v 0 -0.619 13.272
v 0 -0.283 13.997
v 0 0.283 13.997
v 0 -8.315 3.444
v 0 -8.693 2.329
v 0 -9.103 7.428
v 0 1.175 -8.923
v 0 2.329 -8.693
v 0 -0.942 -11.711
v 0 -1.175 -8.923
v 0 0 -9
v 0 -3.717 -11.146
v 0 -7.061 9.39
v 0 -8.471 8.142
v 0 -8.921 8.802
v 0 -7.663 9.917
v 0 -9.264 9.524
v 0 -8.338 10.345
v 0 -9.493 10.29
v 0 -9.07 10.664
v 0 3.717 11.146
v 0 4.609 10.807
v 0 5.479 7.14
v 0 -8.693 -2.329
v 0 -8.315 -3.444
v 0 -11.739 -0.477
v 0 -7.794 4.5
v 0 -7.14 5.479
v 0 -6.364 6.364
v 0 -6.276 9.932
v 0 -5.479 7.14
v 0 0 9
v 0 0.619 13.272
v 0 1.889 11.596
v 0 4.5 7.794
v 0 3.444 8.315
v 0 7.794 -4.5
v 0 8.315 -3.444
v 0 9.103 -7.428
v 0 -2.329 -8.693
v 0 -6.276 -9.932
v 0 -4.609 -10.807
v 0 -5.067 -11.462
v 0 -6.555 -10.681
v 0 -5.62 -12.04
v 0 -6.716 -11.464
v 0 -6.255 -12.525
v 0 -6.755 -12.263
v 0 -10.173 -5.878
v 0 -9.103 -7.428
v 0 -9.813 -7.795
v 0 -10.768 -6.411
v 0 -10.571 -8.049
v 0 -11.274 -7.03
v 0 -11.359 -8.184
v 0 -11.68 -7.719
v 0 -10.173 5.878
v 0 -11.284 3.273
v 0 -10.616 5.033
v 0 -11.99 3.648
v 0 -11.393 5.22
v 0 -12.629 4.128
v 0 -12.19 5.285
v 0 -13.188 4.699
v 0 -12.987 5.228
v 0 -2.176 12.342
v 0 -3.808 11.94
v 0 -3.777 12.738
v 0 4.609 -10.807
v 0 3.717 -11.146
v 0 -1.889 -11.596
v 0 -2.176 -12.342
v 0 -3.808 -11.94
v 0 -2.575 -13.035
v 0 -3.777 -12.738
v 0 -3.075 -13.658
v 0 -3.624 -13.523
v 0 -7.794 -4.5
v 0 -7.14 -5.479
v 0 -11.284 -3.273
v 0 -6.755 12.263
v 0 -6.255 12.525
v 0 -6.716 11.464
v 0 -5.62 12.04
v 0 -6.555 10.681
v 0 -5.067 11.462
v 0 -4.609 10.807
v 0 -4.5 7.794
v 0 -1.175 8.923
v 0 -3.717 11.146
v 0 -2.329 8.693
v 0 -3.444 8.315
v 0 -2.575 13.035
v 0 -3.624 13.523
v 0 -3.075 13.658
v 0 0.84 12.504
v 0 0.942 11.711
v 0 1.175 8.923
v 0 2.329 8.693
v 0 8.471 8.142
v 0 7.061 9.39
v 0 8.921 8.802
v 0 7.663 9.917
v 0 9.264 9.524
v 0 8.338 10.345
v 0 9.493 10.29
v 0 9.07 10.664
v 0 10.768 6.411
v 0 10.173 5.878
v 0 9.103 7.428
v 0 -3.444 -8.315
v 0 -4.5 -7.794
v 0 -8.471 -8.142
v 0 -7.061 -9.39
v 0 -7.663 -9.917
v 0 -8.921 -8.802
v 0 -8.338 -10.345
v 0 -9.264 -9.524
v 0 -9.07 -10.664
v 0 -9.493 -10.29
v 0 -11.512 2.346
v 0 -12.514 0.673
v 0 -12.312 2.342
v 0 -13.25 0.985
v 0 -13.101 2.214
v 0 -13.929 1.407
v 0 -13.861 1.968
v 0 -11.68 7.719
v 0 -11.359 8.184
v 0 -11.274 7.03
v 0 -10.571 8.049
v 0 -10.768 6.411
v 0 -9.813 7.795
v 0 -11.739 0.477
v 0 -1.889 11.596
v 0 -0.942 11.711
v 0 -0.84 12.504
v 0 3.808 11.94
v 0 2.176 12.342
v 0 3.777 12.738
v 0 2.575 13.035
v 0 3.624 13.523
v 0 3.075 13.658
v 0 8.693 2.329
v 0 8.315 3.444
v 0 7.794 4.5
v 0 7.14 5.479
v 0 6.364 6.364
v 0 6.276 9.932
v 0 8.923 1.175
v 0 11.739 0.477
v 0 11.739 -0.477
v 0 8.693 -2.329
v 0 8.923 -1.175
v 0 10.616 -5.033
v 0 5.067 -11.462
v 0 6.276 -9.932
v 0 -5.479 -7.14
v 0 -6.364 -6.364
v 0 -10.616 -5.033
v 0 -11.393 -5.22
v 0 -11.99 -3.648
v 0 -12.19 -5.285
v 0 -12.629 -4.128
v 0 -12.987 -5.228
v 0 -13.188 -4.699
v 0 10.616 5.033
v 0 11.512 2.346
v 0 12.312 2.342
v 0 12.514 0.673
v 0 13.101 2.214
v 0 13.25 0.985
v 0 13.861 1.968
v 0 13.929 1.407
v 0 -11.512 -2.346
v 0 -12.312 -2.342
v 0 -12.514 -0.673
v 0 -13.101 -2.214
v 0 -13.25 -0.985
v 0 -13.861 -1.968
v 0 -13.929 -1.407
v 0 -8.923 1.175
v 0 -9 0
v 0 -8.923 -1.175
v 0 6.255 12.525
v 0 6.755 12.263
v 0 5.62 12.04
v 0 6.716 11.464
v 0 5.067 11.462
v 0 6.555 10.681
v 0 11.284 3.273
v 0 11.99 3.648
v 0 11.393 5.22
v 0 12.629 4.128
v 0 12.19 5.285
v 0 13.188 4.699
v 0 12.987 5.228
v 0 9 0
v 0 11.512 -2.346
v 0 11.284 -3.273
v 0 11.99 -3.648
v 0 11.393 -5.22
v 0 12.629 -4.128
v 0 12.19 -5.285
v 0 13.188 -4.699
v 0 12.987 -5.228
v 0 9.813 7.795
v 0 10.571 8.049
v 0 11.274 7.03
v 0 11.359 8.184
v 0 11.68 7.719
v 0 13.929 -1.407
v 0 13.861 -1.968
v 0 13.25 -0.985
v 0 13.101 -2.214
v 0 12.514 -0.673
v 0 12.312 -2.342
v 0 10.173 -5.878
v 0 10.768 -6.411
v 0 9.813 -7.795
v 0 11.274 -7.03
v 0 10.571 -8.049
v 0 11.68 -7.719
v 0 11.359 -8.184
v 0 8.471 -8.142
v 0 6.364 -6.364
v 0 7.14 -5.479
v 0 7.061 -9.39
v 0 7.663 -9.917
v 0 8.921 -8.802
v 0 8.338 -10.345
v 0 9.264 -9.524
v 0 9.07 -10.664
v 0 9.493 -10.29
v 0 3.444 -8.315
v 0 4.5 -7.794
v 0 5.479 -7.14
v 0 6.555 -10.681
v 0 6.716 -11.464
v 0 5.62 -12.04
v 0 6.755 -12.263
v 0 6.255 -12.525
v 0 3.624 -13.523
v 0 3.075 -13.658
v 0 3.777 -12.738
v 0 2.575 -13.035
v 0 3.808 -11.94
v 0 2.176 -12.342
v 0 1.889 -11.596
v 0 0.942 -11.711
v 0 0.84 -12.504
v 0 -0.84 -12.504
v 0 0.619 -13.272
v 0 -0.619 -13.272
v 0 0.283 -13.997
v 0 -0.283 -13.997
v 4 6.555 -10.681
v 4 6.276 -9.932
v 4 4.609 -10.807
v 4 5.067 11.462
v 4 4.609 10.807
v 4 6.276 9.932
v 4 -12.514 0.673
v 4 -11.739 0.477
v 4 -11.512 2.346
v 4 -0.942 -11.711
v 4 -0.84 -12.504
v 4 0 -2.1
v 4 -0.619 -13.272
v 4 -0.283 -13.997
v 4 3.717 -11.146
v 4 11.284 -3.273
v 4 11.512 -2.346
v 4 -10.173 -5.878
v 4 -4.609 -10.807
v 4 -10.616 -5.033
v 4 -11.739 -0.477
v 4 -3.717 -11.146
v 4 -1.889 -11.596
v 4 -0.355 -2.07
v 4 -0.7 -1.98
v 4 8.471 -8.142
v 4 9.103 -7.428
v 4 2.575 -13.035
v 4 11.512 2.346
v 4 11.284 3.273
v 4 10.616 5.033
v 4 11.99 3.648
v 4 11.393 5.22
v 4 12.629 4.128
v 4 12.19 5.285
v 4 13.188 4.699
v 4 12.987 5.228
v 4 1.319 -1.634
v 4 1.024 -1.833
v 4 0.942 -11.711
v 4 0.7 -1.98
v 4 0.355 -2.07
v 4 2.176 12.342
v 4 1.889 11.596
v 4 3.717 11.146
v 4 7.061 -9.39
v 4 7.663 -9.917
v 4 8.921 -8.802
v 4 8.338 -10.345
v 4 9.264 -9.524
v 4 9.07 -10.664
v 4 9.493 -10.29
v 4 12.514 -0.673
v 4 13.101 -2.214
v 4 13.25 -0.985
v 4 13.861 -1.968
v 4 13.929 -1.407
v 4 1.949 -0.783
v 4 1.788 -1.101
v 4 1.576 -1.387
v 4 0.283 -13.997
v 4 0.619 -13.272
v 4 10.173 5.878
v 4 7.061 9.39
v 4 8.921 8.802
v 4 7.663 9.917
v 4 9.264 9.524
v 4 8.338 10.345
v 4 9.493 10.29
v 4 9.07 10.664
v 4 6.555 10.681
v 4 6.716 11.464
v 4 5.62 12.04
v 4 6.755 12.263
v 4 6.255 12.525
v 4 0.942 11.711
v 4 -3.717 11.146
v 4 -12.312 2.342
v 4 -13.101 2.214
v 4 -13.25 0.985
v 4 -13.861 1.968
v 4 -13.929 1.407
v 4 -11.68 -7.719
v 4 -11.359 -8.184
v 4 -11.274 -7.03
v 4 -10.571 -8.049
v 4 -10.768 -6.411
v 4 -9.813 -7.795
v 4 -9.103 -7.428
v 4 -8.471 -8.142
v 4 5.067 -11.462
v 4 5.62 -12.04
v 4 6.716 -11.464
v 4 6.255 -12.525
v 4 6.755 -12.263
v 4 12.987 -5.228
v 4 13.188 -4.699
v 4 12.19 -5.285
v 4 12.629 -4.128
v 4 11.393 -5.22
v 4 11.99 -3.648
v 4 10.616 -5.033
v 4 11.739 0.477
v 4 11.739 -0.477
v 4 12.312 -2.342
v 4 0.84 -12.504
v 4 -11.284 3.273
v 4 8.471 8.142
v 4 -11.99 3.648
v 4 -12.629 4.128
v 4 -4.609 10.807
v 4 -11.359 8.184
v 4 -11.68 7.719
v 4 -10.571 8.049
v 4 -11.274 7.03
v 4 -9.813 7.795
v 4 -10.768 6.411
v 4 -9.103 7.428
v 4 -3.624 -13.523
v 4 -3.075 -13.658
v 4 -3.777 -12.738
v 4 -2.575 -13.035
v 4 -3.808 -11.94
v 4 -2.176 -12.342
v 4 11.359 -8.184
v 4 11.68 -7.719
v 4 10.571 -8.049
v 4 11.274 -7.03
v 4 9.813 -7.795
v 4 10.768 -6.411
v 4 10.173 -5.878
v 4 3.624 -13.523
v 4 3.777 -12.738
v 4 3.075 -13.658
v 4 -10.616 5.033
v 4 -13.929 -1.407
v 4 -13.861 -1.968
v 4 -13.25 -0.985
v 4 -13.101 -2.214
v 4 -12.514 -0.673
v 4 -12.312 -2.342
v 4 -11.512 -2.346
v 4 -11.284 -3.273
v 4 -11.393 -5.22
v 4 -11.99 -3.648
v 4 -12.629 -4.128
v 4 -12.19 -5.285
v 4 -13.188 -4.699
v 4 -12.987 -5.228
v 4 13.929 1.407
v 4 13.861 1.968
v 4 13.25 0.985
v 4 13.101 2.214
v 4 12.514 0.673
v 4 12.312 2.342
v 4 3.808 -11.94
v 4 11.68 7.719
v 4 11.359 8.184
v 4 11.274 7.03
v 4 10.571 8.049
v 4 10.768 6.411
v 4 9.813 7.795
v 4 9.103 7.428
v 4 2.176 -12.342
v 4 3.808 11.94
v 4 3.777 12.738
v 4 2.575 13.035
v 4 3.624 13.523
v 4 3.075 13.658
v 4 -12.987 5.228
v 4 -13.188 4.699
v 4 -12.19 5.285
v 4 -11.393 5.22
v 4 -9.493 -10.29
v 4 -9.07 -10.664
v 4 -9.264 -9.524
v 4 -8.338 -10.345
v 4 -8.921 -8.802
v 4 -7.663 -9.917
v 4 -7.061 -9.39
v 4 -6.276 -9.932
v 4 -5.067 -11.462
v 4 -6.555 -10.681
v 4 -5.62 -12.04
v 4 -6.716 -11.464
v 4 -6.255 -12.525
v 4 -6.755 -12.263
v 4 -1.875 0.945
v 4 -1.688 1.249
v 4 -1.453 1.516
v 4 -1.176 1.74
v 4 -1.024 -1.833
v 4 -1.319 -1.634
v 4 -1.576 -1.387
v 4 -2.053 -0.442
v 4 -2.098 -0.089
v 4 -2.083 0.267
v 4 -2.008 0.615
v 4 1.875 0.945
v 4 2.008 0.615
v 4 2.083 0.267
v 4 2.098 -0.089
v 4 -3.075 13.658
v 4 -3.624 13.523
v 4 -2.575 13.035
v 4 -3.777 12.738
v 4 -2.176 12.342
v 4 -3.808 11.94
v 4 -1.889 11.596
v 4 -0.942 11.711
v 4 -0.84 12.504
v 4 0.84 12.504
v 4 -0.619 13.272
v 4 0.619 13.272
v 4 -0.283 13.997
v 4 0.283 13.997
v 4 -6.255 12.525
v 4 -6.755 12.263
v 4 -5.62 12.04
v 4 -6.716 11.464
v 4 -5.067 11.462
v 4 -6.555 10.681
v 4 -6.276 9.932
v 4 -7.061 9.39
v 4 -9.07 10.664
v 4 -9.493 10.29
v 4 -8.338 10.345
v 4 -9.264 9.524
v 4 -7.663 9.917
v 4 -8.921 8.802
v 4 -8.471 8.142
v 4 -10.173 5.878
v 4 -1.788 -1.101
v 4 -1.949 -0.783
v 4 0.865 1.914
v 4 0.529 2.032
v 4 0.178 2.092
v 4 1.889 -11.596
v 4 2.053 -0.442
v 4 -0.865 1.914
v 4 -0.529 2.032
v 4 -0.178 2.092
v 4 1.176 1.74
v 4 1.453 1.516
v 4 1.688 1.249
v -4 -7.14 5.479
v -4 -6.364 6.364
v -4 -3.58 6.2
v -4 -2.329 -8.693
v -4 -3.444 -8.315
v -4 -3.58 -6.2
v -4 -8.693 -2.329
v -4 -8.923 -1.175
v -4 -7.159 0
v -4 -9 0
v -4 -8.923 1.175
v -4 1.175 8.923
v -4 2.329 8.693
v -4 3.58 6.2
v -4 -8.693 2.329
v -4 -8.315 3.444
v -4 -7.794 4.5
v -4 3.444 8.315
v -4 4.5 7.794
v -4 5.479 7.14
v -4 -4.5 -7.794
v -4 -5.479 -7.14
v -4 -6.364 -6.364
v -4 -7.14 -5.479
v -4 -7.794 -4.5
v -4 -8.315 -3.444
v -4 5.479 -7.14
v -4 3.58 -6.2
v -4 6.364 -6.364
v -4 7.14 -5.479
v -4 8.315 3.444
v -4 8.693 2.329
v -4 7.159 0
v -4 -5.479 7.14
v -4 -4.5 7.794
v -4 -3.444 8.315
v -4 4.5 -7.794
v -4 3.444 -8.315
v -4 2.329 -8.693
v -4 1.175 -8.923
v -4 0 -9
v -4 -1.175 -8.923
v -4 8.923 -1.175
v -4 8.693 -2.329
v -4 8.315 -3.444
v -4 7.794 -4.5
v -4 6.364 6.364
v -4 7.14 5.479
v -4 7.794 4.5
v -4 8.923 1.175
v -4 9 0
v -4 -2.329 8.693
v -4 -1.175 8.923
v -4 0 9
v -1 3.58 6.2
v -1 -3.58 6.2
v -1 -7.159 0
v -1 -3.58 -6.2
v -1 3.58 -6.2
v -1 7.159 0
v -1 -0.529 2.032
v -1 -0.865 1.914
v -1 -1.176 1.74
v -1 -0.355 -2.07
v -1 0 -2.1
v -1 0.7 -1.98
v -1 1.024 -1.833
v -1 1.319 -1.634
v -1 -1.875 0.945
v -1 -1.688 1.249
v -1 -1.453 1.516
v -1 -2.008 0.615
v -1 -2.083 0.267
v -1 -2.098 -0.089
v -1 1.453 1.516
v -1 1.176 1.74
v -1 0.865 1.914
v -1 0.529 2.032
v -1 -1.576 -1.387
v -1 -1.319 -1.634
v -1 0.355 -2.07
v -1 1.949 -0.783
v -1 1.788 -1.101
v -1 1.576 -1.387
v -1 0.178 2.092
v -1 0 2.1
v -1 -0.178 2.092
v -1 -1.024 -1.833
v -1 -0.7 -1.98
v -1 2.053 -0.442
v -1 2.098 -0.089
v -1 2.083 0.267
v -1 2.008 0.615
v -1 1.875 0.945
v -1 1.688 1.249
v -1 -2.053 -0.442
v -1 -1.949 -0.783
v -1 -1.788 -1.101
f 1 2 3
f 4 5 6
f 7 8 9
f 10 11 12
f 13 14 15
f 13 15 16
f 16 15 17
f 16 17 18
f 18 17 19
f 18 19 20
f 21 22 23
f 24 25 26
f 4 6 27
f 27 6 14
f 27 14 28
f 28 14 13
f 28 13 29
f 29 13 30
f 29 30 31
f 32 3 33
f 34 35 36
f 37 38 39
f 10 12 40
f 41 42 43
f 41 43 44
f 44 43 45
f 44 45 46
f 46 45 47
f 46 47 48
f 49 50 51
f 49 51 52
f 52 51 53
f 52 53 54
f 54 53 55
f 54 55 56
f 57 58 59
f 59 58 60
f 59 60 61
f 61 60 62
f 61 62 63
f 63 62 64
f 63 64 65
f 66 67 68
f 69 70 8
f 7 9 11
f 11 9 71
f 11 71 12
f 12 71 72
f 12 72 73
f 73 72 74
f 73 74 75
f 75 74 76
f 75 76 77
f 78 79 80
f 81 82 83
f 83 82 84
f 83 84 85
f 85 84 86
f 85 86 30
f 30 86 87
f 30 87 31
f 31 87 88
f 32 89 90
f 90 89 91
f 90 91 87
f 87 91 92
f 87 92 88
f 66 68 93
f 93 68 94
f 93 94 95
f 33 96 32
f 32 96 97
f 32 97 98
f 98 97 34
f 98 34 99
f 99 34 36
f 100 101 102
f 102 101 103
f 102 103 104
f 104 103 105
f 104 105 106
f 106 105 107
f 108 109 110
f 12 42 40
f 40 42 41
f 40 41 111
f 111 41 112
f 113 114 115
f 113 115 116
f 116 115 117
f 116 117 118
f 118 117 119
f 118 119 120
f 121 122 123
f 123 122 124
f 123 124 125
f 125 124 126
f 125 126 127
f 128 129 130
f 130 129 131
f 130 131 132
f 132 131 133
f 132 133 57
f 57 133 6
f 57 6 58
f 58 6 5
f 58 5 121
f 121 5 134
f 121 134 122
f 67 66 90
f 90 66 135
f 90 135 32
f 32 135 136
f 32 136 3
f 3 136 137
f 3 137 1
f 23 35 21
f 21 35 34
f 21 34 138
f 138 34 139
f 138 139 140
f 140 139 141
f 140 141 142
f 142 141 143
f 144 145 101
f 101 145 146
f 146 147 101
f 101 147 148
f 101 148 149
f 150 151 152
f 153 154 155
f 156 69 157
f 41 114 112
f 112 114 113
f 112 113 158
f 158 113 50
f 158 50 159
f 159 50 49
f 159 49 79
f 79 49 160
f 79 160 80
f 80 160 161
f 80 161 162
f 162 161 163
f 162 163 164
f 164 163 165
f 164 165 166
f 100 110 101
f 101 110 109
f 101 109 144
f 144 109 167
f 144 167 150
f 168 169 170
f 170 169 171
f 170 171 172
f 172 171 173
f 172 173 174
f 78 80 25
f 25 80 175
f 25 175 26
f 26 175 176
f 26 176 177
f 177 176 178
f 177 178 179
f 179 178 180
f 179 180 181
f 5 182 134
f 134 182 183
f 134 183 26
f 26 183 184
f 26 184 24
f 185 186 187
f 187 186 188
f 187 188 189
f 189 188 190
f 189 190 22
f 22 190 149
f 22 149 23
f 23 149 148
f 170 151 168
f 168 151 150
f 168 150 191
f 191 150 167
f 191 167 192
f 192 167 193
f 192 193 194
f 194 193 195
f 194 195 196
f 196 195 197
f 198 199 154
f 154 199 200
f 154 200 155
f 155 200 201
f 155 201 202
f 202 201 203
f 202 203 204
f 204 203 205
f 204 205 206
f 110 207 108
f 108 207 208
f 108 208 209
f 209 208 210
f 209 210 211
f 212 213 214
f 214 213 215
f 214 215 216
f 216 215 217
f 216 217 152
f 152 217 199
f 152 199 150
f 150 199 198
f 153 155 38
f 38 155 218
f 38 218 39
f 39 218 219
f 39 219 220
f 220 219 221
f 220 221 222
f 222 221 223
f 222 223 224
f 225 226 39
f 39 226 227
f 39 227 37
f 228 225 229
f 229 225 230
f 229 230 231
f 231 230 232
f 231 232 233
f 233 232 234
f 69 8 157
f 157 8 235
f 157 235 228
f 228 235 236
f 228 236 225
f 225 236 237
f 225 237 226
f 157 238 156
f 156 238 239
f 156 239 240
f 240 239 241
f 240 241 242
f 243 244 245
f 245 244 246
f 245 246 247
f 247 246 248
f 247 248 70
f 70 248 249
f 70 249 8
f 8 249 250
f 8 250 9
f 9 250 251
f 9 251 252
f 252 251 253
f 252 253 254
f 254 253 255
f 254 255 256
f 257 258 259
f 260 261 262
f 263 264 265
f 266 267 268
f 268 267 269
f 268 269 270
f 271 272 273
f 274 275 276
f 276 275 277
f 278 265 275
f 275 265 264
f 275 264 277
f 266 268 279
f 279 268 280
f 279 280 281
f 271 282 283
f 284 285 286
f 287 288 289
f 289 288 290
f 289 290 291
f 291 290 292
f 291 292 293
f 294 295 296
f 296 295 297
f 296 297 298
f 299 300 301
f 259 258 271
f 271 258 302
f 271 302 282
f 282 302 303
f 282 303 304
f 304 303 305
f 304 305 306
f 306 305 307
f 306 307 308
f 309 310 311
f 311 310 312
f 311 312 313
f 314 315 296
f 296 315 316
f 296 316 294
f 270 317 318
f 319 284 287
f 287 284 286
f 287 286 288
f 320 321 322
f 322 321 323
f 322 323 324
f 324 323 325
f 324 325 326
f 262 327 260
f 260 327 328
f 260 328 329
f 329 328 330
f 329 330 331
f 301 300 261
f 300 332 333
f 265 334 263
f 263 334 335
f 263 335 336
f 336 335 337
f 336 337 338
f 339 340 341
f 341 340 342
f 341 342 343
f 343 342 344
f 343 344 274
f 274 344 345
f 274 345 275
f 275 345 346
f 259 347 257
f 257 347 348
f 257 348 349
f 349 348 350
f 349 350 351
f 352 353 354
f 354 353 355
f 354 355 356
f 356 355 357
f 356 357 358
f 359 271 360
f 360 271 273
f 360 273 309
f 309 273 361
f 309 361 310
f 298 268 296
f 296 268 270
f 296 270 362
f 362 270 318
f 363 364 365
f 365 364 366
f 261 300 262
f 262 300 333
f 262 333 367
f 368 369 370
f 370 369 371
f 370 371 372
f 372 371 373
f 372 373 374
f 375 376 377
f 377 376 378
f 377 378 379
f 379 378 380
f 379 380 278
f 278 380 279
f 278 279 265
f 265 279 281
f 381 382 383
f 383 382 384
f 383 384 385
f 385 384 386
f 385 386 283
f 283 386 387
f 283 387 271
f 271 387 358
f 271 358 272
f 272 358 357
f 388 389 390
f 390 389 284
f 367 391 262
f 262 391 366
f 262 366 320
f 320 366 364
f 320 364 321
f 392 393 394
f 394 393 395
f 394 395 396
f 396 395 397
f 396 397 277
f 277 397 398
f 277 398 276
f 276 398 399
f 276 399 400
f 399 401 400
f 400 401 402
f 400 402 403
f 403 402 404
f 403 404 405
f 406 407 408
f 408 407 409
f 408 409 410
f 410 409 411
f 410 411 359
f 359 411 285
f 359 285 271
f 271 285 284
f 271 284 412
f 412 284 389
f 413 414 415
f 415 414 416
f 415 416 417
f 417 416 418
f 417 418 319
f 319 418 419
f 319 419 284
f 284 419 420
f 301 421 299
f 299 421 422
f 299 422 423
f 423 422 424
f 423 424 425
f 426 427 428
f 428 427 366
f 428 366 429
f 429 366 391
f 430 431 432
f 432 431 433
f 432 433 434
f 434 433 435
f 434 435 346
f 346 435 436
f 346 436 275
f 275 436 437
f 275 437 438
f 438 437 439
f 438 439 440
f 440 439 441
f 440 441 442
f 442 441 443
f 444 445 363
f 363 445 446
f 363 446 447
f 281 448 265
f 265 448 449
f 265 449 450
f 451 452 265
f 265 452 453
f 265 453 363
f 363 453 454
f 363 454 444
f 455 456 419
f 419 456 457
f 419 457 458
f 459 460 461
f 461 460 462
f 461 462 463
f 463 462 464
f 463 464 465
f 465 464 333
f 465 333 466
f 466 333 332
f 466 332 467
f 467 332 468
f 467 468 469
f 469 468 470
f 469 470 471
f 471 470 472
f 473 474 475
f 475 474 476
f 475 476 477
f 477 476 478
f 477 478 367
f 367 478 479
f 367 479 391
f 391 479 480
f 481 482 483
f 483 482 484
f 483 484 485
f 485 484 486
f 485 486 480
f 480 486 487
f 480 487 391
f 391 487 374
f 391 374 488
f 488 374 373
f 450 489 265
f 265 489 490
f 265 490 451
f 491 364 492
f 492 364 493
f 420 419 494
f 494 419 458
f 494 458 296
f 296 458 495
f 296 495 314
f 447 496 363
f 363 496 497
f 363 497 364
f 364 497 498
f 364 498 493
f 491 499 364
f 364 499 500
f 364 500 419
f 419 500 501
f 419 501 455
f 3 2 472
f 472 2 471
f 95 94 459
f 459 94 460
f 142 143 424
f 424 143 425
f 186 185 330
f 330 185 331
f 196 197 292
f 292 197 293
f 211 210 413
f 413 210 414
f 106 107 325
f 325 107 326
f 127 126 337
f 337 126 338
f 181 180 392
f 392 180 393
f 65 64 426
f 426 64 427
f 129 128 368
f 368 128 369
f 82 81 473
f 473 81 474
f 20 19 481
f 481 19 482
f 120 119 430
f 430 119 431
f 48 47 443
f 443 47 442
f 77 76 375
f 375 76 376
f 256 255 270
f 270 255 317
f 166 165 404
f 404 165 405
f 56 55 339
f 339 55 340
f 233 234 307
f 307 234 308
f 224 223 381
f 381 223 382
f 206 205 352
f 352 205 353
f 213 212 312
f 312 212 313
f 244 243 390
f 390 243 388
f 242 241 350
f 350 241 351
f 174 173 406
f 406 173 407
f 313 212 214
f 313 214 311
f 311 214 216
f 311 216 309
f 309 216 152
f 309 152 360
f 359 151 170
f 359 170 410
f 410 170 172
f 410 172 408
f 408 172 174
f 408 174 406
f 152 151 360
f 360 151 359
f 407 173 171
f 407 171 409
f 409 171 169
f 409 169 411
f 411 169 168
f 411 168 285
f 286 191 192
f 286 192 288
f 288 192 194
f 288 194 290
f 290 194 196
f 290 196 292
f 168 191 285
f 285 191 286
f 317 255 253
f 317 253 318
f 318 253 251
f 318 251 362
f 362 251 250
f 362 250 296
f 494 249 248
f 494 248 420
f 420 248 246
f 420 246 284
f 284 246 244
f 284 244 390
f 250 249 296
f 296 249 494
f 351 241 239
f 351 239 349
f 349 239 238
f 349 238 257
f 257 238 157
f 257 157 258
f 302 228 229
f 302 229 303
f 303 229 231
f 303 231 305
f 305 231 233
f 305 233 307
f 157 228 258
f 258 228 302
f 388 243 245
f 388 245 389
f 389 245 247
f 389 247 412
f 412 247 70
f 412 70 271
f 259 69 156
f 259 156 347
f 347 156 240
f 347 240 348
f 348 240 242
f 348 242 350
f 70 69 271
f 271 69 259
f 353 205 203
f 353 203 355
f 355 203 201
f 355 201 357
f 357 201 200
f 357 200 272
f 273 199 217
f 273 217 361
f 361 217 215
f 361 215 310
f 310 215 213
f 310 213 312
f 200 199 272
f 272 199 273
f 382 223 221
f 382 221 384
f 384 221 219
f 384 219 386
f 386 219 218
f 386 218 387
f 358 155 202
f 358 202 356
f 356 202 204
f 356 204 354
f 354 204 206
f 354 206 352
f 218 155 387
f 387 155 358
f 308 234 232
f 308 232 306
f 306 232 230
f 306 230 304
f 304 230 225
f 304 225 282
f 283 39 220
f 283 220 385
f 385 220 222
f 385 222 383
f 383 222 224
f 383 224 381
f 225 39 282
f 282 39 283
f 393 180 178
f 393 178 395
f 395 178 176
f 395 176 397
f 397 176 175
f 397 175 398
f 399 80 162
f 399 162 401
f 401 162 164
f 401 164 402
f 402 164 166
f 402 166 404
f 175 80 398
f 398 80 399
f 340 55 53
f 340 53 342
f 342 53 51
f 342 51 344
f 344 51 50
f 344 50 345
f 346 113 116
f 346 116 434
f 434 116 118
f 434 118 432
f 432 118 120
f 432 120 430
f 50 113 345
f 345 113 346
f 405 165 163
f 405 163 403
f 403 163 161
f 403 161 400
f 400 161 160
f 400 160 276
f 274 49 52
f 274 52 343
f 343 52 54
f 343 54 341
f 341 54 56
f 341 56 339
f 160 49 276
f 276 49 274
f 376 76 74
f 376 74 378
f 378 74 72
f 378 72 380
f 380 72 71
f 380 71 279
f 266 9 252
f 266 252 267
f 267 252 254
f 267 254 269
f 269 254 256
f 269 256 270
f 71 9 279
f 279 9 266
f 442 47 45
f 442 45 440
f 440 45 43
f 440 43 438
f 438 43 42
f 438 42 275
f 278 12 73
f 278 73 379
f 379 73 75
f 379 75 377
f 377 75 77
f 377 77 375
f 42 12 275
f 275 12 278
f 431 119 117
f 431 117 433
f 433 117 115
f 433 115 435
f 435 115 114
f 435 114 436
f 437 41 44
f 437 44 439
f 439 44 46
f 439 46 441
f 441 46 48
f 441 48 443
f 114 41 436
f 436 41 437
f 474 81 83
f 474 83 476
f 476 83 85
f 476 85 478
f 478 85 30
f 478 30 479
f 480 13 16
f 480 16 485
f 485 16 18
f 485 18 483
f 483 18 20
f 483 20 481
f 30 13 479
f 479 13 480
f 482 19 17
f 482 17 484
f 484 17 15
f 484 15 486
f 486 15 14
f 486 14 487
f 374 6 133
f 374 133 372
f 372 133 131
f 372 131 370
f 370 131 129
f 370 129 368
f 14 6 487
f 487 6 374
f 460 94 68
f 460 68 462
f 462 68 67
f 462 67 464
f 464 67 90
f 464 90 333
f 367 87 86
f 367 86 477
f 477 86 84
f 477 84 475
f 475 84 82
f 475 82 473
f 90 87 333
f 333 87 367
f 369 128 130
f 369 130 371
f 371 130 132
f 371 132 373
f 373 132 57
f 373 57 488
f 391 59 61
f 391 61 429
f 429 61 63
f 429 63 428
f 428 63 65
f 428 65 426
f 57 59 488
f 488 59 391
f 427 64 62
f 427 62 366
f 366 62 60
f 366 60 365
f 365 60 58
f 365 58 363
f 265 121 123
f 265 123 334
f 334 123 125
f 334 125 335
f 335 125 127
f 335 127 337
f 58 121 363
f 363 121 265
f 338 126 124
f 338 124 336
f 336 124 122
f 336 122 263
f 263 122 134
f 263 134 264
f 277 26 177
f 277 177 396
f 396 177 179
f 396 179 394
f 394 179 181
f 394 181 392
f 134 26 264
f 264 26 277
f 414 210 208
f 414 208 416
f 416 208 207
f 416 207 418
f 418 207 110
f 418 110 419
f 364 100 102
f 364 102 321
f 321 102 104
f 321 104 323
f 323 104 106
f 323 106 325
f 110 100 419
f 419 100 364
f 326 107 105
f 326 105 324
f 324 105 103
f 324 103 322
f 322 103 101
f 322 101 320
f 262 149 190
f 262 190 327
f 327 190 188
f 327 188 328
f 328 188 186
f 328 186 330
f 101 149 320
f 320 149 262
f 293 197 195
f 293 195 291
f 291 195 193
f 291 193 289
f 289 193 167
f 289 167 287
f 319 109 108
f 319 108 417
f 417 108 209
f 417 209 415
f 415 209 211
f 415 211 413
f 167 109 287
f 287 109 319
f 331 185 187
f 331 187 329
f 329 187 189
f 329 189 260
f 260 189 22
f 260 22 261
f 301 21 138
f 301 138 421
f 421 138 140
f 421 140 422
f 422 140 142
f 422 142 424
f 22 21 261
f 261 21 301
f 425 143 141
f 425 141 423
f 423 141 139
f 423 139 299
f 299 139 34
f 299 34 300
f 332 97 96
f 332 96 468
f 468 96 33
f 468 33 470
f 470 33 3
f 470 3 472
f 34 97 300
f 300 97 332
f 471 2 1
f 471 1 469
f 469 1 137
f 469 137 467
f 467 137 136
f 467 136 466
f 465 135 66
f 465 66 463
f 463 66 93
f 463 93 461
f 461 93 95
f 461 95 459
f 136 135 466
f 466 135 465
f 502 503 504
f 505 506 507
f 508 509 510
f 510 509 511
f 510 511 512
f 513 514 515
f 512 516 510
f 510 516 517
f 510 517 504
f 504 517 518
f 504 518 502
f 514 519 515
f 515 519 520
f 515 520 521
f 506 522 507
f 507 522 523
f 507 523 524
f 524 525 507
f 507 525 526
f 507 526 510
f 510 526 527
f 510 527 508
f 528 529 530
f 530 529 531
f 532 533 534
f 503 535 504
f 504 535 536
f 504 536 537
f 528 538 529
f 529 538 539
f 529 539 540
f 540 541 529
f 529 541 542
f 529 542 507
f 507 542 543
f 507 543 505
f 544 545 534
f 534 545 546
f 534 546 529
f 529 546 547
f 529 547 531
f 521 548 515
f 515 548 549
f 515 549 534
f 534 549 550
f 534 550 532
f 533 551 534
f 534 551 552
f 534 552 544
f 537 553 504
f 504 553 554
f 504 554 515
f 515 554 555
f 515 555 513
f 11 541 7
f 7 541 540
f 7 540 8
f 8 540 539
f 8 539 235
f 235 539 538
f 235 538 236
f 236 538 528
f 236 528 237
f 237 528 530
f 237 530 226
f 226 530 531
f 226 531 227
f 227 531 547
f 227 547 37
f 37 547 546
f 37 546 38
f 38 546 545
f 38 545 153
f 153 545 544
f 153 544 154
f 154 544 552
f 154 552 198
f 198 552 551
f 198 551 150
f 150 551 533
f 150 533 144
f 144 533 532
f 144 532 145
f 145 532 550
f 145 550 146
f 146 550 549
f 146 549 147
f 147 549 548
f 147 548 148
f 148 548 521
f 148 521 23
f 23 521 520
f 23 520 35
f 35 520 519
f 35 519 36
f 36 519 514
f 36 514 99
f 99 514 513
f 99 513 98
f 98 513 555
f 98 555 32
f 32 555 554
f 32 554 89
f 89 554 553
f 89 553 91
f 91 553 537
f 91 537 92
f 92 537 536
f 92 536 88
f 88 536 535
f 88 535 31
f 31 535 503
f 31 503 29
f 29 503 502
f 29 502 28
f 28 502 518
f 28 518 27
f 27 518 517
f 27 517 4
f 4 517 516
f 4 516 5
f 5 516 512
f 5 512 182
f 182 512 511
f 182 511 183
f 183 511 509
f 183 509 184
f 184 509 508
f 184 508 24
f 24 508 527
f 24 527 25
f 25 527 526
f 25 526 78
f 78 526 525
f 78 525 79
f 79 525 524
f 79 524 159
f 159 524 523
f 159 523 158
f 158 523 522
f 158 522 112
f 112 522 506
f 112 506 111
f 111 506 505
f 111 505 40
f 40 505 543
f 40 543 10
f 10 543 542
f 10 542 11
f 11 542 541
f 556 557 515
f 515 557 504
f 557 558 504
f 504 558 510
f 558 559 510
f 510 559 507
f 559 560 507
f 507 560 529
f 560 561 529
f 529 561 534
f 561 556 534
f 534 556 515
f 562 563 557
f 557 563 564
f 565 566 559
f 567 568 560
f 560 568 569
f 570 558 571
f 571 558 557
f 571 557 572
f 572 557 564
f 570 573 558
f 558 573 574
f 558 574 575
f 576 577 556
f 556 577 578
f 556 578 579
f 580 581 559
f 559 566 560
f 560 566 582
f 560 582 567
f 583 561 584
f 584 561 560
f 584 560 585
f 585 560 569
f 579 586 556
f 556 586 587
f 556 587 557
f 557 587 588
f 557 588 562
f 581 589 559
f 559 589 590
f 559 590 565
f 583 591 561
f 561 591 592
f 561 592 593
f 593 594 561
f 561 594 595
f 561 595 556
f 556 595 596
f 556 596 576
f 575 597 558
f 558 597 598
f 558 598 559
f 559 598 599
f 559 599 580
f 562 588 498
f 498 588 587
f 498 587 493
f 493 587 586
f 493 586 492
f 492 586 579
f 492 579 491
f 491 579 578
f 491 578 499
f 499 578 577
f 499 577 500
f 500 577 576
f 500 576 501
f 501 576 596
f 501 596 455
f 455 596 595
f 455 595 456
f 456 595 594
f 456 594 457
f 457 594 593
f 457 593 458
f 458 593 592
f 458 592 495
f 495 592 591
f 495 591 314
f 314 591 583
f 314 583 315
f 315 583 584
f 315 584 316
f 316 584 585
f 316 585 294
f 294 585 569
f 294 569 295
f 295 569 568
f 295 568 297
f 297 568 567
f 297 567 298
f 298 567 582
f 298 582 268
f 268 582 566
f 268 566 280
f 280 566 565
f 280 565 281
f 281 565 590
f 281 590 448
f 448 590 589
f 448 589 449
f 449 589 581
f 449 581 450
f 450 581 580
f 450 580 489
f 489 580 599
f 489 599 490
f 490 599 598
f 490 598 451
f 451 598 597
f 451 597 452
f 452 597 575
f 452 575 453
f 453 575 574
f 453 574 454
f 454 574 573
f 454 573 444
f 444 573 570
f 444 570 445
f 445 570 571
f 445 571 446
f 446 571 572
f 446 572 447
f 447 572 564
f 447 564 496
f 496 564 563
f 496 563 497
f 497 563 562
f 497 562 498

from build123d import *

# Parameters (mm, degrees)
BASPROSKE_W         = 4
BASPROSKE_H         = 14
TOOTHCUT_DEPTH      = 21.199009877
TEETHCUTS_COUNT     = 26
TEETHCUTS_ANGLE     = 346.153846154
BORSKE_R            = 2
BORE_DEPTH          = 50.0000508
SKETCH_1_R          = 9
SKETCH_1_R_2        = 2
EXTRUDE_1_DEPTH     = 4
CUT_EXTRUDE_1_DEPTH = 3
SKETCH_4_R          = 2.1
CUT_EXTRUDE_2_DEPTH = 22.307778916


with BuildPart() as part:
    # BasProSke → Base-Revolve (revolve)
    with BuildSketch(Plane(origin=(0, 0, 0), x_dir=(1, 0, 0), z_dir=(0, 1, 0)), mode=Mode.PRIVATE) as base_revolve_sk:
        with Locations((2, 7)):
            Rectangle(BASPROSKE_W, BASPROSKE_H)
    revolve(base_revolve_sk.sketch.rotate(Axis((-10, 0, 0), (1, 0, 0)), 180), axis=Axis((-10, 0, 0), (1, 0, 0)))

    # TooCutSke → ToothCut (cut, through all)
    with BuildSketch(Plane(origin=(0, 0, 0), x_dir=(0, 0, -1), z_dir=(1, 0, 0))):
        with BuildLine():
            ThreePointArc((0.476965065, 11.739314517), (0, 11.749), (-0.476965065, 11.739314517))
            ThreePointArc((-0.476965065, 11.739314517), (-0.82065865, 12.901686978), (-1.424117301, 13.952911348))
            ThreePointArc((-1.424117301, 13.952911348), (0, 14.0254), (1.424117301, 13.952911348))
            ThreePointArc((1.424117301, 13.952911348), (0.82065865, 12.901686978), (0.476965065, 11.739314517))
        make_face()
    toothcut = extrude(amount=TOOTHCUT_DEPTH, mode=Mode.SUBTRACT)

    # TeethCuts: ToothCut ×26 about axis
    teethcuts_axis = Axis((-10, 0, 0), (1, 0, 0))
    for i in range(1, TEETHCUTS_COUNT):
        add(toothcut.rotate(teethcuts_axis, i * TEETHCUTS_ANGLE / (TEETHCUTS_COUNT - 1)), mode=Mode.SUBTRACT)

    # BorSke → Bore (cut, symmetric)
    with BuildSketch(Plane(origin=(0, 0, 0), x_dir=(0, 0, -1), z_dir=(1, 0, 0))):
        with Locations(Location((0, 0, 0), (0, 0, 180))):
            Circle(BORSKE_R)
    extrude(amount=BORE_DEPTH, both=True, mode=Mode.SUBTRACT)

    # 草图1 → 凸台-拉伸1 (add)
    with BuildSketch(Plane.ZY):
        with Locations(Location((0, 0, 0), (0, 0, 180))):
            Circle(SKETCH_1_R)
        Circle(SKETCH_1_R_2, mode=Mode.SUBTRACT)
    extrude(amount=EXTRUDE_1_DEPTH)

    # 草图2 → 切除-拉伸1 (cut)
    with BuildSketch(Plane.ZY.offset(4)):
        Polygon((6.2, 3.579571669), (0, 7.159143338), (-6.2, 3.579571669), (-6.2, -3.579571669), (0, -7.159143338), (6.2, -3.579571669), align=None)
    extrude(amount=-CUT_EXTRUDE_1_DEPTH, mode=Mode.SUBTRACT)

    # 草图4 → 切除-拉伸2 (cut, through all)
    with BuildSketch(Plane(origin=(4, 0, 0), x_dir=(0, 0, -1), z_dir=(1, 0, 0))):
        Circle(SKETCH_4_R)
    extrude(amount=-CUT_EXTRUDE_2_DEPTH, mode=Mode.SUBTRACT)


solid = part.part
